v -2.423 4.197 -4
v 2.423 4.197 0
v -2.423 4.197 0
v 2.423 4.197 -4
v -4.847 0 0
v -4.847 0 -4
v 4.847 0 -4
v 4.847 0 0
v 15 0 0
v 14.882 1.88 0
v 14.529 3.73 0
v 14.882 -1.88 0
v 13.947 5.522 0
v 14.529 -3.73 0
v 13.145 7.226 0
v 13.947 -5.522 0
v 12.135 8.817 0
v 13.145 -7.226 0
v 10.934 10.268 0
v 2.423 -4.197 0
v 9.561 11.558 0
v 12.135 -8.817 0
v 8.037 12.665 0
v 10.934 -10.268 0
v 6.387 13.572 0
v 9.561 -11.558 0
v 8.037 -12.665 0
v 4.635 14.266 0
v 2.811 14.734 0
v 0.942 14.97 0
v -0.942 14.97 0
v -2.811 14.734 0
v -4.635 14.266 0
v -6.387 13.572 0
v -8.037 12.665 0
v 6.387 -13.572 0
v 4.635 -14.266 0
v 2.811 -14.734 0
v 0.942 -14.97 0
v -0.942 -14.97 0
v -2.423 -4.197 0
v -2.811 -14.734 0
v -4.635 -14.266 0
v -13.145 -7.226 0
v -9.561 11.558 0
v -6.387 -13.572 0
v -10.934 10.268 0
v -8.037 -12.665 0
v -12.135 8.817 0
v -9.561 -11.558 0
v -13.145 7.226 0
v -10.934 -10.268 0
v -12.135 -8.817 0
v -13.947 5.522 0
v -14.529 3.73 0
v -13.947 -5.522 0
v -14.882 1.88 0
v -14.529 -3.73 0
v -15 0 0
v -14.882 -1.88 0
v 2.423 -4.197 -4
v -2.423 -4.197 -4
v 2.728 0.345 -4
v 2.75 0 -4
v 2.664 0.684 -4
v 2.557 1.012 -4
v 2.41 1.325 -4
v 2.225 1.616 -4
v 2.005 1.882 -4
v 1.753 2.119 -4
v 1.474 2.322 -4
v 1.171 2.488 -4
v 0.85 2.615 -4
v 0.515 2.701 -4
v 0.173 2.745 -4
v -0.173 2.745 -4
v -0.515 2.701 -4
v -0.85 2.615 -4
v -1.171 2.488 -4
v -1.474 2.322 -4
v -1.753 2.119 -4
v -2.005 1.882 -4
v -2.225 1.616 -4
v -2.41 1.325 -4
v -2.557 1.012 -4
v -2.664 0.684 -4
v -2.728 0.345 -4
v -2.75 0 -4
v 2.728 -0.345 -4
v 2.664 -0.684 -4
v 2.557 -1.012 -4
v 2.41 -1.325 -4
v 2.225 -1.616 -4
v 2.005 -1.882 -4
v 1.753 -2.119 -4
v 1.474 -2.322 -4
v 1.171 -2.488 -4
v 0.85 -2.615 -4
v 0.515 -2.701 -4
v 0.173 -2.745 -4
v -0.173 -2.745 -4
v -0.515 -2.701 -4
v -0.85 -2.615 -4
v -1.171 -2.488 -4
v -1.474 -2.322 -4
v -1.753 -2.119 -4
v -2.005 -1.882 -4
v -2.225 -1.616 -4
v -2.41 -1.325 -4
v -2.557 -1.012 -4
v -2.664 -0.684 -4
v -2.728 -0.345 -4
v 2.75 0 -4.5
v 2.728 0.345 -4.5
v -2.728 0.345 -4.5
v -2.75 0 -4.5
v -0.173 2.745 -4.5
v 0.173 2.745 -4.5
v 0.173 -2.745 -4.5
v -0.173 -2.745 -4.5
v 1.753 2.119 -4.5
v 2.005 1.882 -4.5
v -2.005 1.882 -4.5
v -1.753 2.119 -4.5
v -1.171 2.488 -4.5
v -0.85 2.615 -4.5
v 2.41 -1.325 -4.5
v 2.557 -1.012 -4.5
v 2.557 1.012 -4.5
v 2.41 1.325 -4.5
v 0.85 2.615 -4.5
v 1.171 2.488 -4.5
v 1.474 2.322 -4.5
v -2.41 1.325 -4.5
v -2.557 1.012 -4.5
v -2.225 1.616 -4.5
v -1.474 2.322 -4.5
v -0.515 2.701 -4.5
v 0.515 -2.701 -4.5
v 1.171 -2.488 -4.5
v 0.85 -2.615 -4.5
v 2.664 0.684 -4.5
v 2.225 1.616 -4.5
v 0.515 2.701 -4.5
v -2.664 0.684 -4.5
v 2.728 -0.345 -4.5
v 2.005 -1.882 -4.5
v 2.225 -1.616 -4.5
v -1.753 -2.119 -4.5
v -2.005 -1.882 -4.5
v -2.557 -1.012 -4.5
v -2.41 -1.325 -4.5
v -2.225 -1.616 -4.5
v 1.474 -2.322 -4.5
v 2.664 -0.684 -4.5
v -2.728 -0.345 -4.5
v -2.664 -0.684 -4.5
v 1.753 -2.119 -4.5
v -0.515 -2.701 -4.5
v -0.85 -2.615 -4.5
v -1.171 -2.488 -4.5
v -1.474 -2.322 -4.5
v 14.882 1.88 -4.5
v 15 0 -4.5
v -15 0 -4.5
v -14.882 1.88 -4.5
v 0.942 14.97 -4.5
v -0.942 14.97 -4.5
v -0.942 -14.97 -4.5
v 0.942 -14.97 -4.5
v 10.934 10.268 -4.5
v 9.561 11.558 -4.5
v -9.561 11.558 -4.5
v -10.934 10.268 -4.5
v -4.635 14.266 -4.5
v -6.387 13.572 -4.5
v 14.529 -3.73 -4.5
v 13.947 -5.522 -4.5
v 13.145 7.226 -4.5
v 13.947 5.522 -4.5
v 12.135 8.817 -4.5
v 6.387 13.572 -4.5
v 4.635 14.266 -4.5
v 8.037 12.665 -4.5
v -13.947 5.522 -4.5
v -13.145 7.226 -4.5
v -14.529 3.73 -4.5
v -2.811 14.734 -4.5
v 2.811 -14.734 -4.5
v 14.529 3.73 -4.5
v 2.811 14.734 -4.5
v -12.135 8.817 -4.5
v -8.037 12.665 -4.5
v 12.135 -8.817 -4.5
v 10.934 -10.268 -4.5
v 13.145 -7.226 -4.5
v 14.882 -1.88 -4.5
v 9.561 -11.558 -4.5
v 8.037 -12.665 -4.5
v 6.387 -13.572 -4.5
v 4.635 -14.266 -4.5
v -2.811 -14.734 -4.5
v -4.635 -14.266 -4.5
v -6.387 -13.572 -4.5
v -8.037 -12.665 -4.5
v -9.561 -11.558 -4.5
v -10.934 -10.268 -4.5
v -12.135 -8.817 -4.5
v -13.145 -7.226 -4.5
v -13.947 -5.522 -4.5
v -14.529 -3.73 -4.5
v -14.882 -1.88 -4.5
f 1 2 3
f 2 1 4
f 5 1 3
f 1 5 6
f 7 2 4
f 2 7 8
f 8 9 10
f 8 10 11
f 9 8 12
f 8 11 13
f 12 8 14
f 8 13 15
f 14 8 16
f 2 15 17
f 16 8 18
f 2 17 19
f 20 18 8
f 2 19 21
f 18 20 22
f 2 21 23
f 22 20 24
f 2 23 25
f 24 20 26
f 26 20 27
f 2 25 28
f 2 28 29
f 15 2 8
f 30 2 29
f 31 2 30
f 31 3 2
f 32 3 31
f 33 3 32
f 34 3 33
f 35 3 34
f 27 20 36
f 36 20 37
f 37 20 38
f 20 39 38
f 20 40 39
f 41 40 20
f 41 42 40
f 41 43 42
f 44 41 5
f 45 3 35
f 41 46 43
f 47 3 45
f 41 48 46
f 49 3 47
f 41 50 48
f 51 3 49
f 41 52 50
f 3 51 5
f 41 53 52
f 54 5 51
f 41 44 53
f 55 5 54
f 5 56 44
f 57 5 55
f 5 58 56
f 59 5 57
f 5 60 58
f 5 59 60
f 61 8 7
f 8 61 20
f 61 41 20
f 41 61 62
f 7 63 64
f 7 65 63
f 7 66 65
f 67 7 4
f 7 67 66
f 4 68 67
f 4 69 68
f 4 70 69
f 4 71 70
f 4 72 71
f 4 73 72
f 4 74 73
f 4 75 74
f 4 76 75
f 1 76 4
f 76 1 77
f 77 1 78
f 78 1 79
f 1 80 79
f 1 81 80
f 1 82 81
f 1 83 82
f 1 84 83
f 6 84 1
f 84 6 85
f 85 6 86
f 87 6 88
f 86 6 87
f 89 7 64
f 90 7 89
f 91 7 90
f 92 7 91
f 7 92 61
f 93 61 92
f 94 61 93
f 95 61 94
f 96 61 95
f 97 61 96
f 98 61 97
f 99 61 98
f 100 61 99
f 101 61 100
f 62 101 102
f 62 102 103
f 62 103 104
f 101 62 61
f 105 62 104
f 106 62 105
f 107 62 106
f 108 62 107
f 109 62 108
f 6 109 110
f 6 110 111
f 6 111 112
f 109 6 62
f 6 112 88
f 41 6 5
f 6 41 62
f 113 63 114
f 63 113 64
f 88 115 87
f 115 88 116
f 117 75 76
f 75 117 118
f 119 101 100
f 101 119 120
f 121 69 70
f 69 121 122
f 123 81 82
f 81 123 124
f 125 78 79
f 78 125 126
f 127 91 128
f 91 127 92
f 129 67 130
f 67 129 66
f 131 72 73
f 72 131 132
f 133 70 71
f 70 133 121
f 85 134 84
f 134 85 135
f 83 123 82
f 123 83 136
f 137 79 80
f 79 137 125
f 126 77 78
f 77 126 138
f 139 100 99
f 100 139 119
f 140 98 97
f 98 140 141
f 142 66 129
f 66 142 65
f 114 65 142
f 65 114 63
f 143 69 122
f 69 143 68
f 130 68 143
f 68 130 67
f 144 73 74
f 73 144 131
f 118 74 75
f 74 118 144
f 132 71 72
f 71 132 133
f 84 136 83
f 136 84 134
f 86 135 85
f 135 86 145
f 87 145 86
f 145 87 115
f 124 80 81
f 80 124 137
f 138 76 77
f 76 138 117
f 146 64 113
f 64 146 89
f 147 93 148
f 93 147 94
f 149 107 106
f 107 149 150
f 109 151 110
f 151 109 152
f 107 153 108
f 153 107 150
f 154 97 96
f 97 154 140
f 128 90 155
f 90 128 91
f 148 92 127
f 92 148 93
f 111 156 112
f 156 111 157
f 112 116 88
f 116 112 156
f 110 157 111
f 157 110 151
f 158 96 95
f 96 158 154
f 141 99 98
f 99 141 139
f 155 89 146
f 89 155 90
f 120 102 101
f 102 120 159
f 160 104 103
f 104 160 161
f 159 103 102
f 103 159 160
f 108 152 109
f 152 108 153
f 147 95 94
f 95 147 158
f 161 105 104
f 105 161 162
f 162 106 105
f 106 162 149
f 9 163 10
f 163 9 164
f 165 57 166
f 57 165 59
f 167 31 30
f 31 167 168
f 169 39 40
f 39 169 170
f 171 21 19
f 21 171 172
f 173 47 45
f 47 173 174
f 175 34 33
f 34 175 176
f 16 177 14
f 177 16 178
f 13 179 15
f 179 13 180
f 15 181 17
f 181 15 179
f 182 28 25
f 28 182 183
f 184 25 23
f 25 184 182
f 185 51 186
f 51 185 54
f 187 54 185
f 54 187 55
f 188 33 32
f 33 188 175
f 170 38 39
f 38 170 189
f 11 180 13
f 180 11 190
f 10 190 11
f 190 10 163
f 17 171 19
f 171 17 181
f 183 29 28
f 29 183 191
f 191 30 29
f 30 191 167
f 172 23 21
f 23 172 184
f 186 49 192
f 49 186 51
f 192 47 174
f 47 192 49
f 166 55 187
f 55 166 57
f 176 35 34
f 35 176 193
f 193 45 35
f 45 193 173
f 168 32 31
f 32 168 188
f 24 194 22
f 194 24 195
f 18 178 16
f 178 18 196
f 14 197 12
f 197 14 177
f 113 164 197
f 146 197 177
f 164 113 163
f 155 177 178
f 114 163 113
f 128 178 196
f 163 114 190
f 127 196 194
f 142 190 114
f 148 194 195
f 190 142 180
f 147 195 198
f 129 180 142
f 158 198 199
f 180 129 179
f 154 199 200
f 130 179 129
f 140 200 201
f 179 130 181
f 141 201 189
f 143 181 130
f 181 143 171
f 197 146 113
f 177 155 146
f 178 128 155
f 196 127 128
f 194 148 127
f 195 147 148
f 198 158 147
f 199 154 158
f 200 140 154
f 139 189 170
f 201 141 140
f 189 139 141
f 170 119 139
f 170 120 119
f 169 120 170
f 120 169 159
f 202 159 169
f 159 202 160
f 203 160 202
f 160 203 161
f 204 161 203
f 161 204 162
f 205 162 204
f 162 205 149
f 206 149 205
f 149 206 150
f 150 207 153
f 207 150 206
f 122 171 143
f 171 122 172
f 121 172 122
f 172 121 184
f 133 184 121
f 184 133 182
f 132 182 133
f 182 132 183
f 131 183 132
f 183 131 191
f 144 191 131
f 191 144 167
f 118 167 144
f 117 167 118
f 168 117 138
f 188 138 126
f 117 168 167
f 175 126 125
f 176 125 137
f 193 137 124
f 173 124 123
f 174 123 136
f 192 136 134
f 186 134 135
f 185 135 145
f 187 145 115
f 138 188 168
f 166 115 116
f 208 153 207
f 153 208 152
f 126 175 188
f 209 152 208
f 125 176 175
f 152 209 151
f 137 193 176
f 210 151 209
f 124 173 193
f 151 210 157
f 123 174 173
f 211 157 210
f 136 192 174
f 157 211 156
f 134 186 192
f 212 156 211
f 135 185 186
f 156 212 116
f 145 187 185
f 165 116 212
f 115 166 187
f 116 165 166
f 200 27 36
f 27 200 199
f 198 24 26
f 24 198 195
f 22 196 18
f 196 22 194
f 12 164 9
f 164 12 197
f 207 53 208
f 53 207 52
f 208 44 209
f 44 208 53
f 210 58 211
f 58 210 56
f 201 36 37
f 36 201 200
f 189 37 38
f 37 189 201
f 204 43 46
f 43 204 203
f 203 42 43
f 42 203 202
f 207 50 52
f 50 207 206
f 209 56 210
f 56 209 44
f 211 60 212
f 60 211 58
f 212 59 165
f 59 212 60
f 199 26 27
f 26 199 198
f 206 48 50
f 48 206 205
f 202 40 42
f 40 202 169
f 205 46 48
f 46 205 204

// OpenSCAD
$fn = 50;

difference() {
	union() {
		translate(v = [0, 0, -4.5]) {
			cylinder(h = 4.5, r = 15.0);
		}
	}
	union() {
		translate(v = [0, 0, 0]) {
			rotate(a = [0, 0, 0]) {
				difference() {
					union() {
						translate(v = [0, 0, -4]) {
							linear_extrude(height = 4) {
								polygon(points = [[4.8468, 0.0], [2.4234000000000004, 4.197451927062417], [-2.423399999999999, 4.197451927062417], [-4.8468, 5.935618106107392e-16], [-2.423400000000002, -4.197451927062416], [2.423399999999997, -4.197451927062419]]);
							}
						}
					}
					union();
				}
			}
		}
		#translate(v = [0, 0, -100.0]) {
			cylinder(h = 200, r = 2.75);
		}
	}
}
